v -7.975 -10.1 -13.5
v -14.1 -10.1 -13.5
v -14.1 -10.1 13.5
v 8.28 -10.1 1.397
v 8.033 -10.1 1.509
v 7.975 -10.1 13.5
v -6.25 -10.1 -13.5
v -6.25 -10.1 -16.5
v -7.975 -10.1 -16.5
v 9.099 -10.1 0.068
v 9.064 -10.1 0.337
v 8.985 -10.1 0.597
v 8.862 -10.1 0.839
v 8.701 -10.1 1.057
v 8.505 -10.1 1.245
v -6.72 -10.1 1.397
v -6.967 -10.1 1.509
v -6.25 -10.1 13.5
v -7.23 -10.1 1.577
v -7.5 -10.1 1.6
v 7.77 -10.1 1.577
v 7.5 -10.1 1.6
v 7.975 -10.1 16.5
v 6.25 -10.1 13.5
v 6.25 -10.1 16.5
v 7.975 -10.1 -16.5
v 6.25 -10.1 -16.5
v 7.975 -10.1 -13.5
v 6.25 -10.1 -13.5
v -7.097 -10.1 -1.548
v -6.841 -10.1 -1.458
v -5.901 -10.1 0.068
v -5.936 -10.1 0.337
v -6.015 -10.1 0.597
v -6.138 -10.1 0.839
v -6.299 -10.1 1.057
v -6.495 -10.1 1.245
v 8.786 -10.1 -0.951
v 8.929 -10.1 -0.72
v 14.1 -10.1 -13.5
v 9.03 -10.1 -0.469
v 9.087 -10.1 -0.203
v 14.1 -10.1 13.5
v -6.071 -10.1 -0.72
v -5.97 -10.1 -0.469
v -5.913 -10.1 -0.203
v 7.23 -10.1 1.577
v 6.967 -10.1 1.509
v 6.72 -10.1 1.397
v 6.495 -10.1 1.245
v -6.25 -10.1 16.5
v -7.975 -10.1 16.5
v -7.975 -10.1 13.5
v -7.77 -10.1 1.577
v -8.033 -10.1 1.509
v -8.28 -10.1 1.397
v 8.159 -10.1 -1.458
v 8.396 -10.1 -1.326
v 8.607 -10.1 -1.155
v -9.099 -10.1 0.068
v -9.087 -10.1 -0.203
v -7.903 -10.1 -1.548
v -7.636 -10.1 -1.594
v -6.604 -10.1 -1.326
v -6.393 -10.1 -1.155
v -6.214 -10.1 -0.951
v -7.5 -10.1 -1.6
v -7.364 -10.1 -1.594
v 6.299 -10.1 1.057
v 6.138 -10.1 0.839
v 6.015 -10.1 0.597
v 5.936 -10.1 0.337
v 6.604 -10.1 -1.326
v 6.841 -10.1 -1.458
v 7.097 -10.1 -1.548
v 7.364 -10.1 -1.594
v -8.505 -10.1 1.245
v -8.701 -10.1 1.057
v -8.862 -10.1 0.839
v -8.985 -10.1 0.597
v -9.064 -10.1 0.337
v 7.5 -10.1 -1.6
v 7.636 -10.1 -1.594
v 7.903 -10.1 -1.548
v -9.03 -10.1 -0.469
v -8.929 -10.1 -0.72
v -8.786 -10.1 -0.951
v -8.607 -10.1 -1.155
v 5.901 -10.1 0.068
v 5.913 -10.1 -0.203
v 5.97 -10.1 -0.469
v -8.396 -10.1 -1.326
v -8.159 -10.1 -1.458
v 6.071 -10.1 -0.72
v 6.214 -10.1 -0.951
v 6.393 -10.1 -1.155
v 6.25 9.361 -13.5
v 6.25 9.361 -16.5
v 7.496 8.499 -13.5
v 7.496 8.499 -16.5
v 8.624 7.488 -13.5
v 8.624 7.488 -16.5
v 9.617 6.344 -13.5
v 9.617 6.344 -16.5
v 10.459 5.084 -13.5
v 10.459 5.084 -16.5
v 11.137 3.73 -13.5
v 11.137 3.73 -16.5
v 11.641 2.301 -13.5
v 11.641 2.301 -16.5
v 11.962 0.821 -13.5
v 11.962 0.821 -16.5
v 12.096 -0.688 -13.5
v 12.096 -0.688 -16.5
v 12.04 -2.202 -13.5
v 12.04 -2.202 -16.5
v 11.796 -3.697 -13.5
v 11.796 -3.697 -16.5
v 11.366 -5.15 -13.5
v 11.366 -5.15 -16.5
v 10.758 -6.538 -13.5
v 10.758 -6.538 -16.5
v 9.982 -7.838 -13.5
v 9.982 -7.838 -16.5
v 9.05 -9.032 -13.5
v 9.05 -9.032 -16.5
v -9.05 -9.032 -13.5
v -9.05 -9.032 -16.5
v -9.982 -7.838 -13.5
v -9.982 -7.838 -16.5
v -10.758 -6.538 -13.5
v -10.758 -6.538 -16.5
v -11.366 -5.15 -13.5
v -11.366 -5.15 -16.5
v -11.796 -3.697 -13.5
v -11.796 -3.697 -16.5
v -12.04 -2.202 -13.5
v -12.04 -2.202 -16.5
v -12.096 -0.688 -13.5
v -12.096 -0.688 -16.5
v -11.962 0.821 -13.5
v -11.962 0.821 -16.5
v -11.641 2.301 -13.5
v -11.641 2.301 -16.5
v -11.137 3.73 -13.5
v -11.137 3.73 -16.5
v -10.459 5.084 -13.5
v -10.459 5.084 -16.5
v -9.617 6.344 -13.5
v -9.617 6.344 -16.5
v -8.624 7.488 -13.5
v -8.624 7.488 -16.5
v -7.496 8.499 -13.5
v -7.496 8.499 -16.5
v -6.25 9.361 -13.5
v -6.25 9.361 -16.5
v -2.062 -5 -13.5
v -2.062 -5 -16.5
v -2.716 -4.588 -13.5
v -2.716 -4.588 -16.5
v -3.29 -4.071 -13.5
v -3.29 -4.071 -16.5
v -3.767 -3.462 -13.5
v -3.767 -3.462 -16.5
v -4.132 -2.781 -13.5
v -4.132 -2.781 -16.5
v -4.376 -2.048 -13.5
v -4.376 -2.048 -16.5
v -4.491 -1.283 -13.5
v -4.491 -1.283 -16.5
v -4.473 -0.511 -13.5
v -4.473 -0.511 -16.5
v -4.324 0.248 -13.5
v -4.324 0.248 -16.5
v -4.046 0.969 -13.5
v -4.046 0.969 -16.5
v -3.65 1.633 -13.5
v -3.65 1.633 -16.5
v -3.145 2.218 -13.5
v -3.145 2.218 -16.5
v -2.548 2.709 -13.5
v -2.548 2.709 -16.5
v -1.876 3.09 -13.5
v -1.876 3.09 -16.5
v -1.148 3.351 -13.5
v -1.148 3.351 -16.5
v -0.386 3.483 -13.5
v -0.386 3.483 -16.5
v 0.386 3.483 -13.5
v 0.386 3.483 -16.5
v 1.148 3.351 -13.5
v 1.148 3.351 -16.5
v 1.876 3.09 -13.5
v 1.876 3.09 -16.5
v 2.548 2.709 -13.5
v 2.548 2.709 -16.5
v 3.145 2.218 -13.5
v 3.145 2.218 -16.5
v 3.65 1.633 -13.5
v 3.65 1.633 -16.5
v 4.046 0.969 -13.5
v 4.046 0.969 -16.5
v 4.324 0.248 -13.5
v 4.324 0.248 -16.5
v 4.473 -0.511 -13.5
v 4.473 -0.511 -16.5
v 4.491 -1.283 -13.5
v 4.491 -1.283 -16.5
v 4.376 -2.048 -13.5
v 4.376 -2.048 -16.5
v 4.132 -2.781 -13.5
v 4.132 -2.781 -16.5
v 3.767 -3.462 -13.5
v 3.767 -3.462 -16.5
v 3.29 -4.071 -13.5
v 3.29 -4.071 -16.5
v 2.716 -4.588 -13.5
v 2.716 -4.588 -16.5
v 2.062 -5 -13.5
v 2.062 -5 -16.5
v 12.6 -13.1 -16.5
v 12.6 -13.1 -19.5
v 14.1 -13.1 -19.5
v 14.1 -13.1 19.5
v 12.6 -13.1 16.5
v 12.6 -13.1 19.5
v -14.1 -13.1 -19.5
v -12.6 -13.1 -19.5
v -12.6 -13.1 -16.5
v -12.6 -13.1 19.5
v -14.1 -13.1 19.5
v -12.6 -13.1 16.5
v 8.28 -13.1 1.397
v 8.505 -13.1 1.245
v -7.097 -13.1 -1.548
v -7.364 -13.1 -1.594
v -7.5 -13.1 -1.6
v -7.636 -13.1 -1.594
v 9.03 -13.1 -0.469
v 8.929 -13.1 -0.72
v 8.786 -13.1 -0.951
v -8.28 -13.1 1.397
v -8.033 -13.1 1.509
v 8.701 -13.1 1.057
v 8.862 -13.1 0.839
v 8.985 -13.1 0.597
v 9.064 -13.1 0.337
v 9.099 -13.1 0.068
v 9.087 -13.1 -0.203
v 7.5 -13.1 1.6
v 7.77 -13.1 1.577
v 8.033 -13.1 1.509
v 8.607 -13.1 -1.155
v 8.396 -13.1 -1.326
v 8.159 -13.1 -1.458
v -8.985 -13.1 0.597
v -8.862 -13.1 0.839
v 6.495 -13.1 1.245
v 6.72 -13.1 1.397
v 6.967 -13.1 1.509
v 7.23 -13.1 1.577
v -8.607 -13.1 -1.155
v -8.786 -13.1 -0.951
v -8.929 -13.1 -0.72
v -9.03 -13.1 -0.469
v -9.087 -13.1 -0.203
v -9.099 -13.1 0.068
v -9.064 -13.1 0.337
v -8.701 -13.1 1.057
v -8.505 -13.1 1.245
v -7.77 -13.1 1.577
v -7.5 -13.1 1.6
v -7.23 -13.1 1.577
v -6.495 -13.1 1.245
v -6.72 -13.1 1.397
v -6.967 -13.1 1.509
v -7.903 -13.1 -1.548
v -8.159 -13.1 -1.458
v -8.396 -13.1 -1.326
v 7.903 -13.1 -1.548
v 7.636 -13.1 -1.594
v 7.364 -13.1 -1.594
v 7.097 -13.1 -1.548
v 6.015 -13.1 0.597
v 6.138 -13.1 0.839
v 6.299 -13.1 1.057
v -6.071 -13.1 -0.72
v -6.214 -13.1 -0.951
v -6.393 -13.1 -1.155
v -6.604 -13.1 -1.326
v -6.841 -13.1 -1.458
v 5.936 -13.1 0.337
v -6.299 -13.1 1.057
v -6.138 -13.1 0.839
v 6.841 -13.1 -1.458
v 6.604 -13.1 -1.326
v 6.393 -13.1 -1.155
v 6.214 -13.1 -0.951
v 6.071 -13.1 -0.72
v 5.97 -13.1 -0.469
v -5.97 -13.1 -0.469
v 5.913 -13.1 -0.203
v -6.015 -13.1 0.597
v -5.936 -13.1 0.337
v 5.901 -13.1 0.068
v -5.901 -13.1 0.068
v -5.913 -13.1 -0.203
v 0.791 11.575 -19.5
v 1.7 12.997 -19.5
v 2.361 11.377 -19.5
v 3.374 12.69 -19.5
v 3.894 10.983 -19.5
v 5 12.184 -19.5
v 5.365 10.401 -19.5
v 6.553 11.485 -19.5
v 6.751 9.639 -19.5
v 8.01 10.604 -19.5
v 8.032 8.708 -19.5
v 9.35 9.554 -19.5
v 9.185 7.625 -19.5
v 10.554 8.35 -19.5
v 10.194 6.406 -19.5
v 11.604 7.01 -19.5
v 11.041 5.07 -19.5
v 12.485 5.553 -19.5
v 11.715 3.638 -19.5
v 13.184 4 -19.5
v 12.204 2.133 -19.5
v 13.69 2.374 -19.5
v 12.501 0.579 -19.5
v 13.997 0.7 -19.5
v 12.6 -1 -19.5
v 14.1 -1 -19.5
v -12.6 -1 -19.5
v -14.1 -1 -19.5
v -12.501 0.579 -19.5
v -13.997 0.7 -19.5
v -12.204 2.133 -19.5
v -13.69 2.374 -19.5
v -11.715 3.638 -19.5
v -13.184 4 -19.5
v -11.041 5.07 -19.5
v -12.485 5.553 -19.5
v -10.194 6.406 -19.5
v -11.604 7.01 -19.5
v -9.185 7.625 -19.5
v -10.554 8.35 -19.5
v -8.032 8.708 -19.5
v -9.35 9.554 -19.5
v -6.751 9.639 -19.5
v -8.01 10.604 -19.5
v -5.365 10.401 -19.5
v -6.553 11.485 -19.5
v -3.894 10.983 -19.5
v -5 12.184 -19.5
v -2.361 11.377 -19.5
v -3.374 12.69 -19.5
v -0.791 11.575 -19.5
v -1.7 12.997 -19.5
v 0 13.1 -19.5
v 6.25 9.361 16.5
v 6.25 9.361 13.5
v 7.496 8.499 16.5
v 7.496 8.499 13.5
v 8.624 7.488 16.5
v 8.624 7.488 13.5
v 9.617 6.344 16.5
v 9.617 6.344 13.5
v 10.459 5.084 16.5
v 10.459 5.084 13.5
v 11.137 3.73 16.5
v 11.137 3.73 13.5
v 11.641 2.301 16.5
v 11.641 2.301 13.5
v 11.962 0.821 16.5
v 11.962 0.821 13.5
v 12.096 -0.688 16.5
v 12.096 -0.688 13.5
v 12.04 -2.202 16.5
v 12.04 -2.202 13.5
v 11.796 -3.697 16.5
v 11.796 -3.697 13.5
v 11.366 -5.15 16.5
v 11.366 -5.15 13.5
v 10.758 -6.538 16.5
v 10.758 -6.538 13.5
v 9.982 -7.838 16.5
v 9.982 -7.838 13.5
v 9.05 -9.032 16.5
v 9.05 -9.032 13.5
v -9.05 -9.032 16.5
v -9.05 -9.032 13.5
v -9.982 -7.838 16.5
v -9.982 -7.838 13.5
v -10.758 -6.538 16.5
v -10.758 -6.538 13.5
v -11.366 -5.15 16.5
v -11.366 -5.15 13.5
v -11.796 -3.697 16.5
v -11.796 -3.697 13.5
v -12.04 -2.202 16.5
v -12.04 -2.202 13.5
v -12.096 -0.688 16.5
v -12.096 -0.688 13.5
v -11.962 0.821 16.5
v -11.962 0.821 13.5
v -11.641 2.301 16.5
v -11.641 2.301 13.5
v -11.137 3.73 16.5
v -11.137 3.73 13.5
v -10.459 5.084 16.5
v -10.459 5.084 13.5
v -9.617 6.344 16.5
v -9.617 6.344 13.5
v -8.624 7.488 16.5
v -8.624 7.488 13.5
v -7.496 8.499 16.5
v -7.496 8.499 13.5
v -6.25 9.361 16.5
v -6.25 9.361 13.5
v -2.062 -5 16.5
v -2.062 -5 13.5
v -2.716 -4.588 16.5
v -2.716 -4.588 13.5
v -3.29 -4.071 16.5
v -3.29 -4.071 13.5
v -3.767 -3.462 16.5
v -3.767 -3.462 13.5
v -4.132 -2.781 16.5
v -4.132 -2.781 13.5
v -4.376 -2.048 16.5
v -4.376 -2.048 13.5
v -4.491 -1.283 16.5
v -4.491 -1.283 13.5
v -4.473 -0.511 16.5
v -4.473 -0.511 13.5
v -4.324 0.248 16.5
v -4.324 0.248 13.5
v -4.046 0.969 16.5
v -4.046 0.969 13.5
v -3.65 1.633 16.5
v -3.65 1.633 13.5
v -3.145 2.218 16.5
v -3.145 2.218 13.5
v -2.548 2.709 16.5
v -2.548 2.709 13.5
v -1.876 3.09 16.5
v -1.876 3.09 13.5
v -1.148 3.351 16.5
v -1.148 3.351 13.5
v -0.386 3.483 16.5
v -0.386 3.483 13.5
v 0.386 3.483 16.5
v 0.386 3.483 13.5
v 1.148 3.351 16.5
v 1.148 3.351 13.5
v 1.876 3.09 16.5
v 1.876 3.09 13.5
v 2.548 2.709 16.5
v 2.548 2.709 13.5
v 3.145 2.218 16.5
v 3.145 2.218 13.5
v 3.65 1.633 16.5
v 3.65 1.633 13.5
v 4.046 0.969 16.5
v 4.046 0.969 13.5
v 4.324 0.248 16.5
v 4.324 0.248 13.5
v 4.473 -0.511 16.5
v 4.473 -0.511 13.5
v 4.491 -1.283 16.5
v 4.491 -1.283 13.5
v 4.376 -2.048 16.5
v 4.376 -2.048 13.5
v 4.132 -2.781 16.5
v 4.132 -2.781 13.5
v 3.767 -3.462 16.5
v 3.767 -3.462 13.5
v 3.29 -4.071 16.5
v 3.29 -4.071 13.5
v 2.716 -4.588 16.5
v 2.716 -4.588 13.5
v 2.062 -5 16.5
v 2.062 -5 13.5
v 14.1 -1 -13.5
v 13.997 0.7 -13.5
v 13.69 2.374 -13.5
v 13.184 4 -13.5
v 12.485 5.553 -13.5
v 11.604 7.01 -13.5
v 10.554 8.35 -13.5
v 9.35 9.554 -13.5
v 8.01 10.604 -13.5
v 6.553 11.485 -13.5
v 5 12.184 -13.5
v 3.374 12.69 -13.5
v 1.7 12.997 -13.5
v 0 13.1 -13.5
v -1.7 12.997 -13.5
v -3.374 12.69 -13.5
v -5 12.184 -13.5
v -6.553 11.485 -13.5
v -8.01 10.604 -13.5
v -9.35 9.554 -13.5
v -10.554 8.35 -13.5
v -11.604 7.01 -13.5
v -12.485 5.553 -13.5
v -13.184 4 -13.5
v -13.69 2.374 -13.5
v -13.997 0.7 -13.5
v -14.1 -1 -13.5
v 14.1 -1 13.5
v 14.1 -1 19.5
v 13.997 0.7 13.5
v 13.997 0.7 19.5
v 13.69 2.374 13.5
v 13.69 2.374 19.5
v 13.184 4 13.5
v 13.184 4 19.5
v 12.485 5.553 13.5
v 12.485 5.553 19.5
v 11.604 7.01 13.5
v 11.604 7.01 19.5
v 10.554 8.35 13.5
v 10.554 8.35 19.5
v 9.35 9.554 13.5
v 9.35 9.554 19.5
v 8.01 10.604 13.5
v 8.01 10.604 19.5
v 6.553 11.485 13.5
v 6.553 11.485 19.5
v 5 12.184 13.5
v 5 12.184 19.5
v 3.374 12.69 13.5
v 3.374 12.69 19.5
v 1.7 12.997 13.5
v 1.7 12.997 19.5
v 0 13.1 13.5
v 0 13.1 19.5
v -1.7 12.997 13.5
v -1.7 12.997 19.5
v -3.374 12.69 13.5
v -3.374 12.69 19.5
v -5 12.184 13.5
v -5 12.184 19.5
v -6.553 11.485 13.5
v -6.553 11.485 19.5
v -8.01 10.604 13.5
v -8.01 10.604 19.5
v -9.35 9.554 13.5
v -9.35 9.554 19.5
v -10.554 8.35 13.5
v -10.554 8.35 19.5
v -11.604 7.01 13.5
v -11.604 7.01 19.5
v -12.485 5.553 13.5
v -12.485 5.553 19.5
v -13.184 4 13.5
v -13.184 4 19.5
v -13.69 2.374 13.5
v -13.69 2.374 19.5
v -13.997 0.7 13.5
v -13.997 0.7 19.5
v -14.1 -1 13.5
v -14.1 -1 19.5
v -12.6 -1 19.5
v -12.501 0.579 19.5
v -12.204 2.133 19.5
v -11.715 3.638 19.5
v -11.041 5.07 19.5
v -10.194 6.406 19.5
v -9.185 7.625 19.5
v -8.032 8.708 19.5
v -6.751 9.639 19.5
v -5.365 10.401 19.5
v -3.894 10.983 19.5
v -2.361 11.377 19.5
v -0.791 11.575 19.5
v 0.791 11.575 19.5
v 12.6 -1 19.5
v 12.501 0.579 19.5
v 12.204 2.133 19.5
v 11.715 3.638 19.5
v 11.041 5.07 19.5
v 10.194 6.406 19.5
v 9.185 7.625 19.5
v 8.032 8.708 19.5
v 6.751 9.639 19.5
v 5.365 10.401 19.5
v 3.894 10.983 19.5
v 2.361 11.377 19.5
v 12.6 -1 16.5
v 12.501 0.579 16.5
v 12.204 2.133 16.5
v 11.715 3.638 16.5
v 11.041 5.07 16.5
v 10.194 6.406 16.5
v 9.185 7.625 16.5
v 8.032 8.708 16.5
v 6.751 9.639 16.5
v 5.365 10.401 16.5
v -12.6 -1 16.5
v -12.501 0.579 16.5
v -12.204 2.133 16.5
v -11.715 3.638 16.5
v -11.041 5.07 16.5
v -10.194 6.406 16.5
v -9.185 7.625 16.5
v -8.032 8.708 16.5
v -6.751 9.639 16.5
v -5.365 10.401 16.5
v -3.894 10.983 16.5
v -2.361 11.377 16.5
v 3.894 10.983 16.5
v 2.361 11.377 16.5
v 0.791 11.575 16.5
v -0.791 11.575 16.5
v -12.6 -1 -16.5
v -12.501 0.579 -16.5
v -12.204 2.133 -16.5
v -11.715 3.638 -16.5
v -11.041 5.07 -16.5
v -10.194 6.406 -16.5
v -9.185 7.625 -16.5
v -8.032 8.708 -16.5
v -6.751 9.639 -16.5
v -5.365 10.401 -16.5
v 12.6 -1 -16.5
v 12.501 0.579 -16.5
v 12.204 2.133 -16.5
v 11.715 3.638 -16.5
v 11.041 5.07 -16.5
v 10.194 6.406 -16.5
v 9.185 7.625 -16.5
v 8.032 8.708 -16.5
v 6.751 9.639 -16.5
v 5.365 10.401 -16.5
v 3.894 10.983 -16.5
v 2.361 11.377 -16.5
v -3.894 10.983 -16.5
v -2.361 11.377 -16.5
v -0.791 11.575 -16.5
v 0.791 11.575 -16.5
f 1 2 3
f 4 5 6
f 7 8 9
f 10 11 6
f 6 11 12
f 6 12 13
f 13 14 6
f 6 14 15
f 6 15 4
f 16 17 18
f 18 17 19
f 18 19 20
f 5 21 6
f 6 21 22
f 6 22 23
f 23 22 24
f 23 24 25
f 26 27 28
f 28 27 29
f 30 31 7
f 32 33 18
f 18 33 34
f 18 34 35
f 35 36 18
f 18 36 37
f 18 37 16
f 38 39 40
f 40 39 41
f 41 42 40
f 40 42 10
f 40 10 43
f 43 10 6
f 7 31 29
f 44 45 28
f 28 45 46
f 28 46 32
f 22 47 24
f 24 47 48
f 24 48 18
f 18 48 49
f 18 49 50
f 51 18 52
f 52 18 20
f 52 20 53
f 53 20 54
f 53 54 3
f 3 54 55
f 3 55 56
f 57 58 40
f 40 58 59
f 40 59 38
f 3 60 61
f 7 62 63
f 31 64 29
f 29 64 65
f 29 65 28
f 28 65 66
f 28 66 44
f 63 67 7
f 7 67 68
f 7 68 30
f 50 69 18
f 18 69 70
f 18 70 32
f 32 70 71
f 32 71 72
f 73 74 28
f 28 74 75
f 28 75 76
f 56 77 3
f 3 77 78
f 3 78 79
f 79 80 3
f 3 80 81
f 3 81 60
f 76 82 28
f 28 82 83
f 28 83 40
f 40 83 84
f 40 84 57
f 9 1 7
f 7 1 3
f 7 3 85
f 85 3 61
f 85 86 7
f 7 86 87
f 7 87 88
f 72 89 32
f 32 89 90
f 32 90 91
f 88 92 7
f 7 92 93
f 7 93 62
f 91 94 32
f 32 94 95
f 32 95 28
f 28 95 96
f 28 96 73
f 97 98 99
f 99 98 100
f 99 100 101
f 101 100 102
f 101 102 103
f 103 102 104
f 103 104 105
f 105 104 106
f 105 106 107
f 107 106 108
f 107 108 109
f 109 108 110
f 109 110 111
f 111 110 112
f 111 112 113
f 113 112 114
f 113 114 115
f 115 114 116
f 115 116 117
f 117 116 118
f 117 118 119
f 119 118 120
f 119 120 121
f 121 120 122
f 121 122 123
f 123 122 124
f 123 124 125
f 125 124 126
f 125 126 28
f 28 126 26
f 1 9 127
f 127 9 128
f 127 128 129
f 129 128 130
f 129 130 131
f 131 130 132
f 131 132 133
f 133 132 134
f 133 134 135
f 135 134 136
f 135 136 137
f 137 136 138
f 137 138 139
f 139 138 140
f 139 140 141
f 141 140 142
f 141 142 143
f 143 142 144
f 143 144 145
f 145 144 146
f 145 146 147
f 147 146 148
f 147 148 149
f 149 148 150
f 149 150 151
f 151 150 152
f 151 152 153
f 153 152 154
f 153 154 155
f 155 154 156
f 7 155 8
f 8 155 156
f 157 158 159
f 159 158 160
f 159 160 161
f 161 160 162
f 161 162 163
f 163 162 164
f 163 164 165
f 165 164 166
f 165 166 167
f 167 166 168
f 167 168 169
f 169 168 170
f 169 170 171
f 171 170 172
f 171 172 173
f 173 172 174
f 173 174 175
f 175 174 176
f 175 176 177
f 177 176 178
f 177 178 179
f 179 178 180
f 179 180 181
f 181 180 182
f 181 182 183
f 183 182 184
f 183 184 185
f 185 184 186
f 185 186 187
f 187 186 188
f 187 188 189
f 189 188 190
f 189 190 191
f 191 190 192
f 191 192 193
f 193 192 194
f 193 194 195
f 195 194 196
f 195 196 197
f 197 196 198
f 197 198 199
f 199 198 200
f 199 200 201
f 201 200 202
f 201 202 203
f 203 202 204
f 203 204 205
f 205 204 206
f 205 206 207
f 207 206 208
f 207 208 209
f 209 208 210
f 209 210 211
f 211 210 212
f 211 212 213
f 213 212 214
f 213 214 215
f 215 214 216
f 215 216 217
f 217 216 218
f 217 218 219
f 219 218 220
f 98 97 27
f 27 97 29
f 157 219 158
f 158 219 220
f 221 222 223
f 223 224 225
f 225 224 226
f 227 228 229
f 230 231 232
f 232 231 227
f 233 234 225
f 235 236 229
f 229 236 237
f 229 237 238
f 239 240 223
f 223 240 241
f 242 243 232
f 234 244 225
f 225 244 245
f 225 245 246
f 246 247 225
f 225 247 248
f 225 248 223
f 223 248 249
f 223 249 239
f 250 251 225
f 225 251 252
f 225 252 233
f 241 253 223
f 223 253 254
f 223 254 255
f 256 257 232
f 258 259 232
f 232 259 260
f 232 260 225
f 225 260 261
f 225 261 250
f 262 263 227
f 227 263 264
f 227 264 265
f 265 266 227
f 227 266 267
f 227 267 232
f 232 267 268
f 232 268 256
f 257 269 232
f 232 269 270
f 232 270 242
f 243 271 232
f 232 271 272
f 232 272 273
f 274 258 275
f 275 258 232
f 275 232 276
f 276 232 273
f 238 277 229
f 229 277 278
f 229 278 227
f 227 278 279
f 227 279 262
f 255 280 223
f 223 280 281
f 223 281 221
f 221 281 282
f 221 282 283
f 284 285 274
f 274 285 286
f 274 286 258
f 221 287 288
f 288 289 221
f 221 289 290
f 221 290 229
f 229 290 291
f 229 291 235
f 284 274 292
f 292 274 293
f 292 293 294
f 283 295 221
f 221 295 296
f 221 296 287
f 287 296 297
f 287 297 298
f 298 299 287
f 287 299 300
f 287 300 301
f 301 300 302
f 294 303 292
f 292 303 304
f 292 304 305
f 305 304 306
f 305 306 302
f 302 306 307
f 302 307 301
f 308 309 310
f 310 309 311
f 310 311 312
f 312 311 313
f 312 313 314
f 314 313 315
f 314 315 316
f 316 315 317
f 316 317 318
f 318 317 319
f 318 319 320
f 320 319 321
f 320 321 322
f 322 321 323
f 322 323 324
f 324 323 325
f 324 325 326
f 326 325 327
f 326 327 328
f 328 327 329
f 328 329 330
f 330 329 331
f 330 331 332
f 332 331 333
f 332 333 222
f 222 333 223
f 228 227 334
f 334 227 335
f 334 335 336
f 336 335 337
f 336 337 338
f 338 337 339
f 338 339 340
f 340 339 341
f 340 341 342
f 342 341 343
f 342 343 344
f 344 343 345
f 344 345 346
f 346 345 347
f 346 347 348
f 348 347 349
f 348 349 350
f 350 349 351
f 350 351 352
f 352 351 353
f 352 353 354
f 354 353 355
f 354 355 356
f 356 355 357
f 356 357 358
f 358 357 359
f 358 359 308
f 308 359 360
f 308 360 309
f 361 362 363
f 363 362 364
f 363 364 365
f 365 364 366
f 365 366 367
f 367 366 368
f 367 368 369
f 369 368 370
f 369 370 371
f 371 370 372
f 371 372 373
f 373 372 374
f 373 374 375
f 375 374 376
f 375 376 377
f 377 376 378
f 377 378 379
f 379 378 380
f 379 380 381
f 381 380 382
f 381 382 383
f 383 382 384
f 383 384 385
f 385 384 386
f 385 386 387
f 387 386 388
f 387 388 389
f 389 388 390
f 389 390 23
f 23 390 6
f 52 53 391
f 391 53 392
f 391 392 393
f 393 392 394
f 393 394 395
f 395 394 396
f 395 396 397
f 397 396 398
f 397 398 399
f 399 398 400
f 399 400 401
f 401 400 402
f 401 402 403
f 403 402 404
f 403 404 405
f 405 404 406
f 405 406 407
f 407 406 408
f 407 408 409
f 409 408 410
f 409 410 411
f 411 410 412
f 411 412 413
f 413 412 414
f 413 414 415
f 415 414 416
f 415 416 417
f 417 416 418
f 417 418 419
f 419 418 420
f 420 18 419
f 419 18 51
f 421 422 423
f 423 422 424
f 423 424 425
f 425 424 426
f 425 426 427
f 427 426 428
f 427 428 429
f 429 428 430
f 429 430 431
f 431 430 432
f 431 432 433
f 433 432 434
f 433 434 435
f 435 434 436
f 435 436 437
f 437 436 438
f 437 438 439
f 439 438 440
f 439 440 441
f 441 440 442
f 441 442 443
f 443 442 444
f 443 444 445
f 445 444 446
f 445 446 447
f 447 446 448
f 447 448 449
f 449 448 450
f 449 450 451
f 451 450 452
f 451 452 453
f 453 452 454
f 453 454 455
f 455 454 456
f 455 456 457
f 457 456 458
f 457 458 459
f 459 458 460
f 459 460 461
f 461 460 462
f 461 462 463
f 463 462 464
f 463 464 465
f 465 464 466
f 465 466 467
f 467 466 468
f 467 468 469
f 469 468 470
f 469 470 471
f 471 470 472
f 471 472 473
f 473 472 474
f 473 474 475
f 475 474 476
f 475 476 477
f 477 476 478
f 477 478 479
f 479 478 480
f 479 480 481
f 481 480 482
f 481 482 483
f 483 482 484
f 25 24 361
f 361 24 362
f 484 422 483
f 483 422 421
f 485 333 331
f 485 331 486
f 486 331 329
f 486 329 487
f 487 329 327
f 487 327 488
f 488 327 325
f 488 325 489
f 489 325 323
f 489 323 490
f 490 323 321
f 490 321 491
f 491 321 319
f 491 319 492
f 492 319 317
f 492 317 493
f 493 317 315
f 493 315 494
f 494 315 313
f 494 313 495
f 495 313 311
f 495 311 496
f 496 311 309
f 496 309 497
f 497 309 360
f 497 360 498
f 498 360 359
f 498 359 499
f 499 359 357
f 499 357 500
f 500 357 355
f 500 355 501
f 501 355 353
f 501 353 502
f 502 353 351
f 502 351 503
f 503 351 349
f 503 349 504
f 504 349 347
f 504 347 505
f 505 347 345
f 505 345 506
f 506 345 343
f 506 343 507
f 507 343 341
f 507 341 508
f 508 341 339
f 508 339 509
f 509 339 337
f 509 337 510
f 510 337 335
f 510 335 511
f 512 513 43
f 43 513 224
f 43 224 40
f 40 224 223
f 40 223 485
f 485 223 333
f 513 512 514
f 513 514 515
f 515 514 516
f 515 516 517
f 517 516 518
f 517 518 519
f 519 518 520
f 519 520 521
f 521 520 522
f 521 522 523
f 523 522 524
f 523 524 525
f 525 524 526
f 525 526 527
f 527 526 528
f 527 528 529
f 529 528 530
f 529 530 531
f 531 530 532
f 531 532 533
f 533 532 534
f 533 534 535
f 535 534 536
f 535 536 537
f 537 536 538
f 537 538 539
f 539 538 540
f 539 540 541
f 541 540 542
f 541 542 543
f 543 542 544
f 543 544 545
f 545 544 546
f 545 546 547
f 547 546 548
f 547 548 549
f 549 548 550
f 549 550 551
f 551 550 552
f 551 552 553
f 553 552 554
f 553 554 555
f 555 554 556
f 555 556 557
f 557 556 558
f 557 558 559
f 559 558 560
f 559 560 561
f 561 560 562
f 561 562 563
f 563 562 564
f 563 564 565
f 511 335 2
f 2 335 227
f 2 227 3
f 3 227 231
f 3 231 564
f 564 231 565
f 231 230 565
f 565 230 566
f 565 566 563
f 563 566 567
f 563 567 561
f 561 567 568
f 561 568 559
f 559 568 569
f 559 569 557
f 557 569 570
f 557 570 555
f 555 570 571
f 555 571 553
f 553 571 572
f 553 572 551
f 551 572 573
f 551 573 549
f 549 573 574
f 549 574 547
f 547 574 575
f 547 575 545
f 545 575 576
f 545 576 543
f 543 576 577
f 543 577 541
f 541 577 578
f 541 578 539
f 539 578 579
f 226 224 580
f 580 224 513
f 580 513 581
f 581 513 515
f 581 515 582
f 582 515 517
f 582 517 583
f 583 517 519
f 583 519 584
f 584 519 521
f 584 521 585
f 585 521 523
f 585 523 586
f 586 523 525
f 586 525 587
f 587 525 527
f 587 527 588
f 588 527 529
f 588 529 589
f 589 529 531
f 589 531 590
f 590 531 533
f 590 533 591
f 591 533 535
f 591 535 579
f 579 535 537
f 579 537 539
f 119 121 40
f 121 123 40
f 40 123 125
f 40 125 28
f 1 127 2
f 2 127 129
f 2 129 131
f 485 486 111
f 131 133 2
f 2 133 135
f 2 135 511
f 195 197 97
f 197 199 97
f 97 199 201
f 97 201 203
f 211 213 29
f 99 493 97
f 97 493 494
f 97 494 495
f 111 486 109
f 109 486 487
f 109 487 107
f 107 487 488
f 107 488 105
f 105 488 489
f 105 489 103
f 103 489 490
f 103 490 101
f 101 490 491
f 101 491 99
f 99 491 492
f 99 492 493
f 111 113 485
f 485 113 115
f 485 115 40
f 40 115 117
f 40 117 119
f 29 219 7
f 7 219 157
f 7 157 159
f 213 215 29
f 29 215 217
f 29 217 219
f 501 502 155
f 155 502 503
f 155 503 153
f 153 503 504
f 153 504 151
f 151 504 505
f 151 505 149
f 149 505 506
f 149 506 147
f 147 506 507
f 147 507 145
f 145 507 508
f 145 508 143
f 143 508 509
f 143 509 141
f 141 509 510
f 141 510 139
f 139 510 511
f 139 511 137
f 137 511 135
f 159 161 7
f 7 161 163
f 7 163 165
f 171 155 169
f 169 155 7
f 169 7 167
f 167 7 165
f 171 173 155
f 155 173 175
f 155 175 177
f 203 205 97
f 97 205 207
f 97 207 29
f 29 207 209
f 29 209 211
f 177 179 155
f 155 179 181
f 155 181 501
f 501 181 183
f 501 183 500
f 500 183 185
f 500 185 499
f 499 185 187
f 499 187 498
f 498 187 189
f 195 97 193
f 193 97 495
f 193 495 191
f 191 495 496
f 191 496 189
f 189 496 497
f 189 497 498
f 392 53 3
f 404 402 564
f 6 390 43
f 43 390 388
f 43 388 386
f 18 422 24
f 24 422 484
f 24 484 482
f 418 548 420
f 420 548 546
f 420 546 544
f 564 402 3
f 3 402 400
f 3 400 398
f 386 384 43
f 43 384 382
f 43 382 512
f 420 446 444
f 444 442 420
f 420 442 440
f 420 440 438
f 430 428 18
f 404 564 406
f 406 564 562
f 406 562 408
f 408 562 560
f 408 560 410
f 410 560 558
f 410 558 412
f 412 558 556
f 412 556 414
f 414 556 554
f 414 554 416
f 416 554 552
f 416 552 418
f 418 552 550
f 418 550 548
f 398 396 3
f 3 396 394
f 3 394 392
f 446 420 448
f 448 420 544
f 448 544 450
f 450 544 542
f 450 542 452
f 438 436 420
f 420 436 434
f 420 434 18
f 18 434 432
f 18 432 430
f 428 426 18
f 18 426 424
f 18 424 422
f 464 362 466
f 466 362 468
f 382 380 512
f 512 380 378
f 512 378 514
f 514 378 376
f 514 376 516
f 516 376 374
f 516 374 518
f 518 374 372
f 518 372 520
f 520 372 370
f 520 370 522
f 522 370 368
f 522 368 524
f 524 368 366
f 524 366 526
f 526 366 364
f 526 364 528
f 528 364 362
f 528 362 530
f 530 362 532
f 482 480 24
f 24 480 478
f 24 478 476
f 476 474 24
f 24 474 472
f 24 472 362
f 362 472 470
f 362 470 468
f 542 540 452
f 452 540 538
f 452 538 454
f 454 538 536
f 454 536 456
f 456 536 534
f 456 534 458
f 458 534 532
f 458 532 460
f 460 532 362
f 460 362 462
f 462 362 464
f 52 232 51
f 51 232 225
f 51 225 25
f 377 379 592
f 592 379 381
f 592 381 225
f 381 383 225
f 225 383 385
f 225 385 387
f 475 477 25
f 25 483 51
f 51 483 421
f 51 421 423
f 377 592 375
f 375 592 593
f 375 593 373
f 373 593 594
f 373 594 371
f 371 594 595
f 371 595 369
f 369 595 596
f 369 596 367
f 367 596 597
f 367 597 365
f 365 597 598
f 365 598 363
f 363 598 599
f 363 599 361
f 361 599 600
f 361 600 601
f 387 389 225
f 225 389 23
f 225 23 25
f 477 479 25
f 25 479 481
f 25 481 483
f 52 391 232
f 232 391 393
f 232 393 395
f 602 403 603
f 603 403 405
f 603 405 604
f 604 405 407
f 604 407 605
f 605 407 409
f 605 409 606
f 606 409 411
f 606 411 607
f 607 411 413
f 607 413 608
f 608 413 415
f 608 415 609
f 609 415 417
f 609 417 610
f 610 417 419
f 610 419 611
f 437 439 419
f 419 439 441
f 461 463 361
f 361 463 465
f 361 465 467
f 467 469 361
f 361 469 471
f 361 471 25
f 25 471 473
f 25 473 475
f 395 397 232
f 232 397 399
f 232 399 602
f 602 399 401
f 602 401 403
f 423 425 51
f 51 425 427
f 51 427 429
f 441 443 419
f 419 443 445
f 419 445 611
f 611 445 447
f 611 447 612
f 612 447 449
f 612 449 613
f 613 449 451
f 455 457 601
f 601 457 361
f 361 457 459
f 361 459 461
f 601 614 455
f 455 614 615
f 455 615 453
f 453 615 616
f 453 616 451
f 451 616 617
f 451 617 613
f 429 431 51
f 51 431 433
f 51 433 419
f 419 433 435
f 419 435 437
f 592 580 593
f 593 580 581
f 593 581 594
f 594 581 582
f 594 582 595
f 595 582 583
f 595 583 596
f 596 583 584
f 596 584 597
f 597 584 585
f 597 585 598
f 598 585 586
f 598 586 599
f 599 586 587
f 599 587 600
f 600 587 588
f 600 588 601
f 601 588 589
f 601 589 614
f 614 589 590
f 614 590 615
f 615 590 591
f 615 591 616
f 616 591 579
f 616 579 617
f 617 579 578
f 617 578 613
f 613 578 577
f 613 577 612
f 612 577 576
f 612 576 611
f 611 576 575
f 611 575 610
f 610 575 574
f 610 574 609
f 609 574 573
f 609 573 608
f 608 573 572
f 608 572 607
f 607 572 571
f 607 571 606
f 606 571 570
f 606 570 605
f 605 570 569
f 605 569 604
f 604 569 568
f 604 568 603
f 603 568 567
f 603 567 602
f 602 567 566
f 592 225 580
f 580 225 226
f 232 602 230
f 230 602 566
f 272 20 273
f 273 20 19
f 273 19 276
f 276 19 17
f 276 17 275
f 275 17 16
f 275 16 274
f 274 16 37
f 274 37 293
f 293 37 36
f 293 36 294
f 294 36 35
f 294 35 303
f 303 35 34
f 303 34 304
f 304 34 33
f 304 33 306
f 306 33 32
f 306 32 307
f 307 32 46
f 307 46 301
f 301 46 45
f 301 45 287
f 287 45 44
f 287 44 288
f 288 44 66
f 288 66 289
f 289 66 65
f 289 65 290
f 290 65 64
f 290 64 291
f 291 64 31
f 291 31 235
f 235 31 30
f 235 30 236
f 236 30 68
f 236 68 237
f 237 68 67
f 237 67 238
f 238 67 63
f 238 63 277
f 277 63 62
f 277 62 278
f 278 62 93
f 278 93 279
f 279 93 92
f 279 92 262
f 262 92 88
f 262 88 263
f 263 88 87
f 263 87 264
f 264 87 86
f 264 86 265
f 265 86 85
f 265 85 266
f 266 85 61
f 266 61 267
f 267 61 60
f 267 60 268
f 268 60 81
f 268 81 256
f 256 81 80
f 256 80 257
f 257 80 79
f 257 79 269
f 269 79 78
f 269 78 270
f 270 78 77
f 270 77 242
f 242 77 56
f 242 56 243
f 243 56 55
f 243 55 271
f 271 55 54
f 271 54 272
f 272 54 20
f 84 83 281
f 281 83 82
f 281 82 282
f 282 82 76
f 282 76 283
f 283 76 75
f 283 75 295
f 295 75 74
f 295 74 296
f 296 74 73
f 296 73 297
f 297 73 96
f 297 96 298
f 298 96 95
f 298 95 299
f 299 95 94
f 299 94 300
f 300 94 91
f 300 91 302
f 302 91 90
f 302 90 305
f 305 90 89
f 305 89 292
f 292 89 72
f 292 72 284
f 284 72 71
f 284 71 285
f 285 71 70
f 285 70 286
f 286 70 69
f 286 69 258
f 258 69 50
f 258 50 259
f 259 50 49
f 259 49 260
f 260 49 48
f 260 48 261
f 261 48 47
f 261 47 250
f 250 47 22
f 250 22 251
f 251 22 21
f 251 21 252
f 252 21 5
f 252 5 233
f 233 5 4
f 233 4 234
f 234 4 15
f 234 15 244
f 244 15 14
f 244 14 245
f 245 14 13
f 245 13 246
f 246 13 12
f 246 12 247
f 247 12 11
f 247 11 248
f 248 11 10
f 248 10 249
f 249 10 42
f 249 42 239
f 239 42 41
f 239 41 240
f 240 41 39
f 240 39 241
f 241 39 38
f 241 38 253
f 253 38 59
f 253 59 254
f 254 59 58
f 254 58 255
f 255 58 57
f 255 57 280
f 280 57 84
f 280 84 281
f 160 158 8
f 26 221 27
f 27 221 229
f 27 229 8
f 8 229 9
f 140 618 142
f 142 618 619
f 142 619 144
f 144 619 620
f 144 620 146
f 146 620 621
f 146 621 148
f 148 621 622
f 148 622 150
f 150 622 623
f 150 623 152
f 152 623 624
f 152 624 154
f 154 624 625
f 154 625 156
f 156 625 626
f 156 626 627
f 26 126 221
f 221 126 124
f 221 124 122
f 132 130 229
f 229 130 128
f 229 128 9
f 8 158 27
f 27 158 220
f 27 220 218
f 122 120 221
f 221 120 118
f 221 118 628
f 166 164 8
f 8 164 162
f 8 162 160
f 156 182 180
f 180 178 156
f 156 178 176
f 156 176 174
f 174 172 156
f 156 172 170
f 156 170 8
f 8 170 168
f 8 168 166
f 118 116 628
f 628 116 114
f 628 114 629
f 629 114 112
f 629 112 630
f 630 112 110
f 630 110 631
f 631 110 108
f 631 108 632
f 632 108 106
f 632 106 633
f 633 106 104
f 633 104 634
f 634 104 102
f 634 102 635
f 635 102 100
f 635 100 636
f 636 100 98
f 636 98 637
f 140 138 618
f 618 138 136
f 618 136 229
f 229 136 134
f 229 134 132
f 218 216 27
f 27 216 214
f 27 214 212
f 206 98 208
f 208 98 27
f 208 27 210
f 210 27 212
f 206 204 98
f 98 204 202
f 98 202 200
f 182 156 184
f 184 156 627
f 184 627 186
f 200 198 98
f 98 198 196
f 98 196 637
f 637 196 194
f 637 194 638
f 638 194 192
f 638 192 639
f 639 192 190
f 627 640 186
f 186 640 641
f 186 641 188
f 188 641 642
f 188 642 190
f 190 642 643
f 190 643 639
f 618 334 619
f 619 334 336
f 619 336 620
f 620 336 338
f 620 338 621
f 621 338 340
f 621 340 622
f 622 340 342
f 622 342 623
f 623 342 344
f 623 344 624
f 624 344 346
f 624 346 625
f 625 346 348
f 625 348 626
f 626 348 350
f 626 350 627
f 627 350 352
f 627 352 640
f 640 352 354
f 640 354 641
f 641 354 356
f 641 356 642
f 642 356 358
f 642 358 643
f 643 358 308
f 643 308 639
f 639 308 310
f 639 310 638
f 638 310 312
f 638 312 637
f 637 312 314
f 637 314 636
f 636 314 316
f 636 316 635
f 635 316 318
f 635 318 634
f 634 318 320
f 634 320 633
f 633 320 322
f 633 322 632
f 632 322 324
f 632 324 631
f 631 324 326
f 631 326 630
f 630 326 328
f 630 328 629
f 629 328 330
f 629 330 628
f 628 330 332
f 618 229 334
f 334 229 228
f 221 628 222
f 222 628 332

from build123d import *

# Parameters (mm, degrees)
BOSS_EXTRUDE2_DEPTH     = 19.5
SKETCH4_W               = 27
SKETCH4_H               = 23.2
CUT_EXTRUDE2_DEPTH      = 15.1
CUT_EXTRUDE2_DEPTH_BACK = 15.1
CUT_EXTRUDE4_DEPTH      = 3
SKETCH5_R               = 1.6
CUT_EXTRUDE5_DEPTH      = 14.1
CUT_EXTRUDE5_DEPTH_BACK = 14.1


with BuildPart() as part:
    # Sketch2 → Boss-Extrude2 (new body, symmetric)
    with BuildSketch(Plane.XY):
        with BuildLine():
            Line((-14.1, -13.1), (14.1, -13.1))
            Line((14.1, -13.1), (14.1, -1))
            ThreePointArc((14.1, -1), (0, 13.1), (-14.1, -1))
            Line((-14.1, -1), (-14.1, -13.1))
        make_face()
        with BuildLine():
            Line((6.25, 9.360863864), (6.25, -10.1))
            Line((6.25, -10.1), (7.974960815, -10.1))
            ThreePointArc((7.974960815, -10.1), (12.052745875, 0.06832433), (6.25, 9.360863864))
        make_face(mode=Mode.SUBTRACT)
        with BuildLine():
            Line((-6.25, 9.360863864), (-6.25, -10.1))
            Line((-6.25, -10.1), (-7.974960815, -10.1))
            ThreePointArc((-7.974960815, -10.1), (-12.052745875, 0.06832433), (-6.25, 9.360863864))
        make_face(mode=Mode.SUBTRACT)
        with BuildLine():
            Line((2.061552813, -5), (-2.061552813, -5))
            ThreePointArc((-2.061552813, -5), (0, 3.5), (2.061552813, -5))
        make_face(mode=Mode.SUBTRACT)
    extrude(amount=BOSS_EXTRUDE2_DEPTH, both=True)

    # Sketch4 → Cut-Extrude2 (cut, two sides)
    with BuildSketch(Plane(origin=(0, 0, 0), x_dir=(0, 0, -1), z_dir=(1, 0, 0))) as cut_extrude2_sk:
        with Locations((0, 1.5)):
            Rectangle(SKETCH4_W, SKETCH4_H)
    extrude(amount=CUT_EXTRUDE2_DEPTH, mode=Mode.SUBTRACT)
    extrude(cut_extrude2_sk.sketch, amount=-CUT_EXTRUDE2_DEPTH_BACK, mode=Mode.SUBTRACT)

    # Sketch3 → Cut-Extrude4 (cut)
    with BuildSketch(Plane.XY.offset(19.5)):
        with BuildLine():
            Line((-12.6, -1), (-12.6, -13.1))
            Line((-12.6, -13.1), (12.6, -13.1))
            Line((12.6, -13.1), (12.6, -1))
            ThreePointArc((12.6, -1), (0, 11.6), (-12.6, -1))
        make_face()
    cut_extrude4 = extrude(amount=-CUT_EXTRUDE4_DEPTH, mode=Mode.SUBTRACT)

    # Sketch5 → Cut-Extrude5 (cut, two sides)
    with BuildSketch(Plane(origin=(0, 0, 0), x_dir=(1, 0, 0), z_dir=(0, 1, 0))) as cut_extrude5_sk:
        with Locations((7.5, 0)):
            Circle(SKETCH5_R)
        with Locations((-7.5, 0)):
            Circle(SKETCH5_R)
    extrude(amount=CUT_EXTRUDE5_DEPTH, mode=Mode.SUBTRACT)
    extrude(cut_extrude5_sk.sketch, amount=-CUT_EXTRUDE5_DEPTH_BACK, mode=Mode.SUBTRACT)

    # Mirror2: Cut-Extrude4 across plane
    add(cut_extrude4.mirror(Plane.XY), mode=Mode.SUBTRACT)


solid = part.part
